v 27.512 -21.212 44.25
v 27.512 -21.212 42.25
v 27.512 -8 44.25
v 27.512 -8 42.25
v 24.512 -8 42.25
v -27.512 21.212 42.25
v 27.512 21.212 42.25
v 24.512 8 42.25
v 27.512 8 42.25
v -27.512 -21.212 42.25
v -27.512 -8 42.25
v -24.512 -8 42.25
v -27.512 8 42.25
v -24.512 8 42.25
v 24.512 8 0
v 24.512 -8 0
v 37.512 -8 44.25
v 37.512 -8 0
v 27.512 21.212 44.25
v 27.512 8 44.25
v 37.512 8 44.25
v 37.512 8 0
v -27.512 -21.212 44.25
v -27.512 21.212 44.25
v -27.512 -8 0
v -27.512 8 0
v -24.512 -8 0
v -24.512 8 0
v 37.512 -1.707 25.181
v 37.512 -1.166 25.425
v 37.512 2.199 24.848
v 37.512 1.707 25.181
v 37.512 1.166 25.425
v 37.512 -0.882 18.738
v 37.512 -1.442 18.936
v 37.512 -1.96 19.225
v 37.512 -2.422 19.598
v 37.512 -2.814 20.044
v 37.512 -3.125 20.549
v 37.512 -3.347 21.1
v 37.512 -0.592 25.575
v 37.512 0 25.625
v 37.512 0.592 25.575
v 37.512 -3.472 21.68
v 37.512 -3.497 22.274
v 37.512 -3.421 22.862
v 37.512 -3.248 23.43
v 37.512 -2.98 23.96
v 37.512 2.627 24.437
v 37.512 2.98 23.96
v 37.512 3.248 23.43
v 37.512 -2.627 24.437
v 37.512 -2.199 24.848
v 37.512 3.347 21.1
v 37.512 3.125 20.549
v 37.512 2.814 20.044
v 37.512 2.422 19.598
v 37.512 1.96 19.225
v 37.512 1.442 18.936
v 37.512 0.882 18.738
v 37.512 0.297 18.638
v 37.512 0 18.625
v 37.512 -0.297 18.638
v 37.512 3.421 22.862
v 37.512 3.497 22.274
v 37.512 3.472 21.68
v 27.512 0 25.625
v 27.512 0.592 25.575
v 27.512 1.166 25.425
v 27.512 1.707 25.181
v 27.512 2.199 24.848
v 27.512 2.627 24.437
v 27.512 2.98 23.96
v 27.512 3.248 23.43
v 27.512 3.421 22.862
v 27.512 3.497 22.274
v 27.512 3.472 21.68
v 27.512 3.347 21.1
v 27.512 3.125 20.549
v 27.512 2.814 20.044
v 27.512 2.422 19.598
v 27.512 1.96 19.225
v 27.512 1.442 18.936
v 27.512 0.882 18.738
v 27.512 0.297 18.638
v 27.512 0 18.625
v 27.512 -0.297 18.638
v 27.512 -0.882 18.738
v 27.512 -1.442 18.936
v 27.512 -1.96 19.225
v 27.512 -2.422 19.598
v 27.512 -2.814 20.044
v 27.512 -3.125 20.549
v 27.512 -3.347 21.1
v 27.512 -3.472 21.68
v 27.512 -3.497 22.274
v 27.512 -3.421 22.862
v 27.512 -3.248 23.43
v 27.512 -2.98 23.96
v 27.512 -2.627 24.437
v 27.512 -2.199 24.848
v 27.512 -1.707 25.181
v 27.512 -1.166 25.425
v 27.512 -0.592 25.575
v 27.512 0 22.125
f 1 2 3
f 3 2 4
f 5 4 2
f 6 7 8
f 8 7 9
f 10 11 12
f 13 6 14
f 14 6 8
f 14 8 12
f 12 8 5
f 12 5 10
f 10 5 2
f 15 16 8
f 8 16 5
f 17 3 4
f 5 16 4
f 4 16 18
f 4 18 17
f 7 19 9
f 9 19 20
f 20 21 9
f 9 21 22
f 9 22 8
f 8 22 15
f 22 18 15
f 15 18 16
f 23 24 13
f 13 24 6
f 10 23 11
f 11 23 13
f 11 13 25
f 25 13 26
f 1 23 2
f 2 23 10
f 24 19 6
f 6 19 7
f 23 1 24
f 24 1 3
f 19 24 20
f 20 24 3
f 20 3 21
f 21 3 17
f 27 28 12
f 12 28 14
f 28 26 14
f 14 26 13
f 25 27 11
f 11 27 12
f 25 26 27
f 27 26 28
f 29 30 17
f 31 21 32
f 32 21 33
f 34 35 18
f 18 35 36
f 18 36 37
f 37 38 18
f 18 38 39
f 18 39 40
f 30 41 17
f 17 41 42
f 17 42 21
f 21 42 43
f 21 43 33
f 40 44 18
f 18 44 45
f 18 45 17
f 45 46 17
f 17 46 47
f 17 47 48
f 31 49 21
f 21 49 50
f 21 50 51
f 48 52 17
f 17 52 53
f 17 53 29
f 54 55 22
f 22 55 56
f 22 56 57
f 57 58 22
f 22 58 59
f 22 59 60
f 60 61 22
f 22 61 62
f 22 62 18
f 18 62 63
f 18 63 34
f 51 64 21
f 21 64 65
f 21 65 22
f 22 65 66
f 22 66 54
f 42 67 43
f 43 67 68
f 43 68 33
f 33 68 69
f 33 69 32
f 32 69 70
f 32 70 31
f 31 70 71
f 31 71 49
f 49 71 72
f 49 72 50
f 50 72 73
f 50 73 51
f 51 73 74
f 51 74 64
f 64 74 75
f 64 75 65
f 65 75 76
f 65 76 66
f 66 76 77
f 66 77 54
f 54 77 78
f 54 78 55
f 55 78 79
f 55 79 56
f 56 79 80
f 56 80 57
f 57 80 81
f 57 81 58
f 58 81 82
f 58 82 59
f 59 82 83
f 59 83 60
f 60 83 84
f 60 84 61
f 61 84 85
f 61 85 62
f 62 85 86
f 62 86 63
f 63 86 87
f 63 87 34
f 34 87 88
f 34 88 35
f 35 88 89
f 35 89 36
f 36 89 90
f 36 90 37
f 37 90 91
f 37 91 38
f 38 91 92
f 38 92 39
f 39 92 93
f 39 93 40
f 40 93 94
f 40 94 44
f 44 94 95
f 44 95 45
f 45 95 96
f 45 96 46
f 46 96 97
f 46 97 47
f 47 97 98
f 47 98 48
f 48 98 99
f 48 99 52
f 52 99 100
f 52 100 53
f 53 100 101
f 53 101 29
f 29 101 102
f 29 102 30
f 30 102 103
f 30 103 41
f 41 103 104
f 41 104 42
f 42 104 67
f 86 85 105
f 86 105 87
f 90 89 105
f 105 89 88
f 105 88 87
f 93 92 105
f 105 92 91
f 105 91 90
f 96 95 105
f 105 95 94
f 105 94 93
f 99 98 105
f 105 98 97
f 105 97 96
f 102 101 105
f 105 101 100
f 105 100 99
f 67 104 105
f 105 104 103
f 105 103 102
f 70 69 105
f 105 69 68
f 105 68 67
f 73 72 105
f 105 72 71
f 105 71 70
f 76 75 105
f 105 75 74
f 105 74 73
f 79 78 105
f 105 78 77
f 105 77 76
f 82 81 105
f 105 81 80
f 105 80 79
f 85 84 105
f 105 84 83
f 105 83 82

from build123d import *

# Parameters (mm, degrees)
SKETCH1_W             = 3
SKETCH1_H             = 16
BOSS_EXTRUDE1_DEPTH   = 42.25
BOSS_EXTRUDE1_2_DEPTH = 42.25
SKETCH2_W             = 55.024264068
SKETCH2_H             = 42.424264068
BOSS_EXTRUDE2_DEPTH   = 2
SKETCH4_W             = 44.25
SKETCH4_H             = 16
SKETCH4_R             = 3.5
BOSS_EXTRUDE4_DEPTH   = 10


with BuildPart() as part:
    # Sketch1 → Boss-Extrude1 (new body)
    with BuildSketch(Plane.XY):
        with Locations((26.012132034, 0)):
            Rectangle(SKETCH1_W, SKETCH1_H)
    extrude(amount=BOSS_EXTRUDE1_DEPTH)



with BuildPart() as body_2:
    # Sketch1 → Boss-Extrude1 2 (new body)
    with BuildSketch(Plane.XY):
        with Locations((-26.012132034, 0)):
            Rectangle(SKETCH1_W, SKETCH1_H)
    extrude(amount=BOSS_EXTRUDE1_2_DEPTH)


with BuildPart() as part_1:
    add(part.part)

    add(body_2.part)  # Boss-Extrude2 merges body 2
    # Sketch2 → Boss-Extrude2 (add)
    with BuildSketch(Plane.XY.offset(42.25)):
        Rectangle(SKETCH2_W, SKETCH2_H)
    extrude(amount=BOSS_EXTRUDE2_DEPTH)

    # Sketch4 → Boss-Extrude4 (add)
    with BuildSketch(Plane(origin=(27.512132034, 0, 0), x_dir=(0, 0, -1), z_dir=(1, 0, 0))):
        with Locations((-22.125, 0)):
            Rectangle(SKETCH4_W, SKETCH4_H)
        with Locations((-22.125, 0)):
            Circle(SKETCH4_R, mode=Mode.SUBTRACT)
    extrude(amount=BOSS_EXTRUDE4_DEPTH)


solid = part_1.part
